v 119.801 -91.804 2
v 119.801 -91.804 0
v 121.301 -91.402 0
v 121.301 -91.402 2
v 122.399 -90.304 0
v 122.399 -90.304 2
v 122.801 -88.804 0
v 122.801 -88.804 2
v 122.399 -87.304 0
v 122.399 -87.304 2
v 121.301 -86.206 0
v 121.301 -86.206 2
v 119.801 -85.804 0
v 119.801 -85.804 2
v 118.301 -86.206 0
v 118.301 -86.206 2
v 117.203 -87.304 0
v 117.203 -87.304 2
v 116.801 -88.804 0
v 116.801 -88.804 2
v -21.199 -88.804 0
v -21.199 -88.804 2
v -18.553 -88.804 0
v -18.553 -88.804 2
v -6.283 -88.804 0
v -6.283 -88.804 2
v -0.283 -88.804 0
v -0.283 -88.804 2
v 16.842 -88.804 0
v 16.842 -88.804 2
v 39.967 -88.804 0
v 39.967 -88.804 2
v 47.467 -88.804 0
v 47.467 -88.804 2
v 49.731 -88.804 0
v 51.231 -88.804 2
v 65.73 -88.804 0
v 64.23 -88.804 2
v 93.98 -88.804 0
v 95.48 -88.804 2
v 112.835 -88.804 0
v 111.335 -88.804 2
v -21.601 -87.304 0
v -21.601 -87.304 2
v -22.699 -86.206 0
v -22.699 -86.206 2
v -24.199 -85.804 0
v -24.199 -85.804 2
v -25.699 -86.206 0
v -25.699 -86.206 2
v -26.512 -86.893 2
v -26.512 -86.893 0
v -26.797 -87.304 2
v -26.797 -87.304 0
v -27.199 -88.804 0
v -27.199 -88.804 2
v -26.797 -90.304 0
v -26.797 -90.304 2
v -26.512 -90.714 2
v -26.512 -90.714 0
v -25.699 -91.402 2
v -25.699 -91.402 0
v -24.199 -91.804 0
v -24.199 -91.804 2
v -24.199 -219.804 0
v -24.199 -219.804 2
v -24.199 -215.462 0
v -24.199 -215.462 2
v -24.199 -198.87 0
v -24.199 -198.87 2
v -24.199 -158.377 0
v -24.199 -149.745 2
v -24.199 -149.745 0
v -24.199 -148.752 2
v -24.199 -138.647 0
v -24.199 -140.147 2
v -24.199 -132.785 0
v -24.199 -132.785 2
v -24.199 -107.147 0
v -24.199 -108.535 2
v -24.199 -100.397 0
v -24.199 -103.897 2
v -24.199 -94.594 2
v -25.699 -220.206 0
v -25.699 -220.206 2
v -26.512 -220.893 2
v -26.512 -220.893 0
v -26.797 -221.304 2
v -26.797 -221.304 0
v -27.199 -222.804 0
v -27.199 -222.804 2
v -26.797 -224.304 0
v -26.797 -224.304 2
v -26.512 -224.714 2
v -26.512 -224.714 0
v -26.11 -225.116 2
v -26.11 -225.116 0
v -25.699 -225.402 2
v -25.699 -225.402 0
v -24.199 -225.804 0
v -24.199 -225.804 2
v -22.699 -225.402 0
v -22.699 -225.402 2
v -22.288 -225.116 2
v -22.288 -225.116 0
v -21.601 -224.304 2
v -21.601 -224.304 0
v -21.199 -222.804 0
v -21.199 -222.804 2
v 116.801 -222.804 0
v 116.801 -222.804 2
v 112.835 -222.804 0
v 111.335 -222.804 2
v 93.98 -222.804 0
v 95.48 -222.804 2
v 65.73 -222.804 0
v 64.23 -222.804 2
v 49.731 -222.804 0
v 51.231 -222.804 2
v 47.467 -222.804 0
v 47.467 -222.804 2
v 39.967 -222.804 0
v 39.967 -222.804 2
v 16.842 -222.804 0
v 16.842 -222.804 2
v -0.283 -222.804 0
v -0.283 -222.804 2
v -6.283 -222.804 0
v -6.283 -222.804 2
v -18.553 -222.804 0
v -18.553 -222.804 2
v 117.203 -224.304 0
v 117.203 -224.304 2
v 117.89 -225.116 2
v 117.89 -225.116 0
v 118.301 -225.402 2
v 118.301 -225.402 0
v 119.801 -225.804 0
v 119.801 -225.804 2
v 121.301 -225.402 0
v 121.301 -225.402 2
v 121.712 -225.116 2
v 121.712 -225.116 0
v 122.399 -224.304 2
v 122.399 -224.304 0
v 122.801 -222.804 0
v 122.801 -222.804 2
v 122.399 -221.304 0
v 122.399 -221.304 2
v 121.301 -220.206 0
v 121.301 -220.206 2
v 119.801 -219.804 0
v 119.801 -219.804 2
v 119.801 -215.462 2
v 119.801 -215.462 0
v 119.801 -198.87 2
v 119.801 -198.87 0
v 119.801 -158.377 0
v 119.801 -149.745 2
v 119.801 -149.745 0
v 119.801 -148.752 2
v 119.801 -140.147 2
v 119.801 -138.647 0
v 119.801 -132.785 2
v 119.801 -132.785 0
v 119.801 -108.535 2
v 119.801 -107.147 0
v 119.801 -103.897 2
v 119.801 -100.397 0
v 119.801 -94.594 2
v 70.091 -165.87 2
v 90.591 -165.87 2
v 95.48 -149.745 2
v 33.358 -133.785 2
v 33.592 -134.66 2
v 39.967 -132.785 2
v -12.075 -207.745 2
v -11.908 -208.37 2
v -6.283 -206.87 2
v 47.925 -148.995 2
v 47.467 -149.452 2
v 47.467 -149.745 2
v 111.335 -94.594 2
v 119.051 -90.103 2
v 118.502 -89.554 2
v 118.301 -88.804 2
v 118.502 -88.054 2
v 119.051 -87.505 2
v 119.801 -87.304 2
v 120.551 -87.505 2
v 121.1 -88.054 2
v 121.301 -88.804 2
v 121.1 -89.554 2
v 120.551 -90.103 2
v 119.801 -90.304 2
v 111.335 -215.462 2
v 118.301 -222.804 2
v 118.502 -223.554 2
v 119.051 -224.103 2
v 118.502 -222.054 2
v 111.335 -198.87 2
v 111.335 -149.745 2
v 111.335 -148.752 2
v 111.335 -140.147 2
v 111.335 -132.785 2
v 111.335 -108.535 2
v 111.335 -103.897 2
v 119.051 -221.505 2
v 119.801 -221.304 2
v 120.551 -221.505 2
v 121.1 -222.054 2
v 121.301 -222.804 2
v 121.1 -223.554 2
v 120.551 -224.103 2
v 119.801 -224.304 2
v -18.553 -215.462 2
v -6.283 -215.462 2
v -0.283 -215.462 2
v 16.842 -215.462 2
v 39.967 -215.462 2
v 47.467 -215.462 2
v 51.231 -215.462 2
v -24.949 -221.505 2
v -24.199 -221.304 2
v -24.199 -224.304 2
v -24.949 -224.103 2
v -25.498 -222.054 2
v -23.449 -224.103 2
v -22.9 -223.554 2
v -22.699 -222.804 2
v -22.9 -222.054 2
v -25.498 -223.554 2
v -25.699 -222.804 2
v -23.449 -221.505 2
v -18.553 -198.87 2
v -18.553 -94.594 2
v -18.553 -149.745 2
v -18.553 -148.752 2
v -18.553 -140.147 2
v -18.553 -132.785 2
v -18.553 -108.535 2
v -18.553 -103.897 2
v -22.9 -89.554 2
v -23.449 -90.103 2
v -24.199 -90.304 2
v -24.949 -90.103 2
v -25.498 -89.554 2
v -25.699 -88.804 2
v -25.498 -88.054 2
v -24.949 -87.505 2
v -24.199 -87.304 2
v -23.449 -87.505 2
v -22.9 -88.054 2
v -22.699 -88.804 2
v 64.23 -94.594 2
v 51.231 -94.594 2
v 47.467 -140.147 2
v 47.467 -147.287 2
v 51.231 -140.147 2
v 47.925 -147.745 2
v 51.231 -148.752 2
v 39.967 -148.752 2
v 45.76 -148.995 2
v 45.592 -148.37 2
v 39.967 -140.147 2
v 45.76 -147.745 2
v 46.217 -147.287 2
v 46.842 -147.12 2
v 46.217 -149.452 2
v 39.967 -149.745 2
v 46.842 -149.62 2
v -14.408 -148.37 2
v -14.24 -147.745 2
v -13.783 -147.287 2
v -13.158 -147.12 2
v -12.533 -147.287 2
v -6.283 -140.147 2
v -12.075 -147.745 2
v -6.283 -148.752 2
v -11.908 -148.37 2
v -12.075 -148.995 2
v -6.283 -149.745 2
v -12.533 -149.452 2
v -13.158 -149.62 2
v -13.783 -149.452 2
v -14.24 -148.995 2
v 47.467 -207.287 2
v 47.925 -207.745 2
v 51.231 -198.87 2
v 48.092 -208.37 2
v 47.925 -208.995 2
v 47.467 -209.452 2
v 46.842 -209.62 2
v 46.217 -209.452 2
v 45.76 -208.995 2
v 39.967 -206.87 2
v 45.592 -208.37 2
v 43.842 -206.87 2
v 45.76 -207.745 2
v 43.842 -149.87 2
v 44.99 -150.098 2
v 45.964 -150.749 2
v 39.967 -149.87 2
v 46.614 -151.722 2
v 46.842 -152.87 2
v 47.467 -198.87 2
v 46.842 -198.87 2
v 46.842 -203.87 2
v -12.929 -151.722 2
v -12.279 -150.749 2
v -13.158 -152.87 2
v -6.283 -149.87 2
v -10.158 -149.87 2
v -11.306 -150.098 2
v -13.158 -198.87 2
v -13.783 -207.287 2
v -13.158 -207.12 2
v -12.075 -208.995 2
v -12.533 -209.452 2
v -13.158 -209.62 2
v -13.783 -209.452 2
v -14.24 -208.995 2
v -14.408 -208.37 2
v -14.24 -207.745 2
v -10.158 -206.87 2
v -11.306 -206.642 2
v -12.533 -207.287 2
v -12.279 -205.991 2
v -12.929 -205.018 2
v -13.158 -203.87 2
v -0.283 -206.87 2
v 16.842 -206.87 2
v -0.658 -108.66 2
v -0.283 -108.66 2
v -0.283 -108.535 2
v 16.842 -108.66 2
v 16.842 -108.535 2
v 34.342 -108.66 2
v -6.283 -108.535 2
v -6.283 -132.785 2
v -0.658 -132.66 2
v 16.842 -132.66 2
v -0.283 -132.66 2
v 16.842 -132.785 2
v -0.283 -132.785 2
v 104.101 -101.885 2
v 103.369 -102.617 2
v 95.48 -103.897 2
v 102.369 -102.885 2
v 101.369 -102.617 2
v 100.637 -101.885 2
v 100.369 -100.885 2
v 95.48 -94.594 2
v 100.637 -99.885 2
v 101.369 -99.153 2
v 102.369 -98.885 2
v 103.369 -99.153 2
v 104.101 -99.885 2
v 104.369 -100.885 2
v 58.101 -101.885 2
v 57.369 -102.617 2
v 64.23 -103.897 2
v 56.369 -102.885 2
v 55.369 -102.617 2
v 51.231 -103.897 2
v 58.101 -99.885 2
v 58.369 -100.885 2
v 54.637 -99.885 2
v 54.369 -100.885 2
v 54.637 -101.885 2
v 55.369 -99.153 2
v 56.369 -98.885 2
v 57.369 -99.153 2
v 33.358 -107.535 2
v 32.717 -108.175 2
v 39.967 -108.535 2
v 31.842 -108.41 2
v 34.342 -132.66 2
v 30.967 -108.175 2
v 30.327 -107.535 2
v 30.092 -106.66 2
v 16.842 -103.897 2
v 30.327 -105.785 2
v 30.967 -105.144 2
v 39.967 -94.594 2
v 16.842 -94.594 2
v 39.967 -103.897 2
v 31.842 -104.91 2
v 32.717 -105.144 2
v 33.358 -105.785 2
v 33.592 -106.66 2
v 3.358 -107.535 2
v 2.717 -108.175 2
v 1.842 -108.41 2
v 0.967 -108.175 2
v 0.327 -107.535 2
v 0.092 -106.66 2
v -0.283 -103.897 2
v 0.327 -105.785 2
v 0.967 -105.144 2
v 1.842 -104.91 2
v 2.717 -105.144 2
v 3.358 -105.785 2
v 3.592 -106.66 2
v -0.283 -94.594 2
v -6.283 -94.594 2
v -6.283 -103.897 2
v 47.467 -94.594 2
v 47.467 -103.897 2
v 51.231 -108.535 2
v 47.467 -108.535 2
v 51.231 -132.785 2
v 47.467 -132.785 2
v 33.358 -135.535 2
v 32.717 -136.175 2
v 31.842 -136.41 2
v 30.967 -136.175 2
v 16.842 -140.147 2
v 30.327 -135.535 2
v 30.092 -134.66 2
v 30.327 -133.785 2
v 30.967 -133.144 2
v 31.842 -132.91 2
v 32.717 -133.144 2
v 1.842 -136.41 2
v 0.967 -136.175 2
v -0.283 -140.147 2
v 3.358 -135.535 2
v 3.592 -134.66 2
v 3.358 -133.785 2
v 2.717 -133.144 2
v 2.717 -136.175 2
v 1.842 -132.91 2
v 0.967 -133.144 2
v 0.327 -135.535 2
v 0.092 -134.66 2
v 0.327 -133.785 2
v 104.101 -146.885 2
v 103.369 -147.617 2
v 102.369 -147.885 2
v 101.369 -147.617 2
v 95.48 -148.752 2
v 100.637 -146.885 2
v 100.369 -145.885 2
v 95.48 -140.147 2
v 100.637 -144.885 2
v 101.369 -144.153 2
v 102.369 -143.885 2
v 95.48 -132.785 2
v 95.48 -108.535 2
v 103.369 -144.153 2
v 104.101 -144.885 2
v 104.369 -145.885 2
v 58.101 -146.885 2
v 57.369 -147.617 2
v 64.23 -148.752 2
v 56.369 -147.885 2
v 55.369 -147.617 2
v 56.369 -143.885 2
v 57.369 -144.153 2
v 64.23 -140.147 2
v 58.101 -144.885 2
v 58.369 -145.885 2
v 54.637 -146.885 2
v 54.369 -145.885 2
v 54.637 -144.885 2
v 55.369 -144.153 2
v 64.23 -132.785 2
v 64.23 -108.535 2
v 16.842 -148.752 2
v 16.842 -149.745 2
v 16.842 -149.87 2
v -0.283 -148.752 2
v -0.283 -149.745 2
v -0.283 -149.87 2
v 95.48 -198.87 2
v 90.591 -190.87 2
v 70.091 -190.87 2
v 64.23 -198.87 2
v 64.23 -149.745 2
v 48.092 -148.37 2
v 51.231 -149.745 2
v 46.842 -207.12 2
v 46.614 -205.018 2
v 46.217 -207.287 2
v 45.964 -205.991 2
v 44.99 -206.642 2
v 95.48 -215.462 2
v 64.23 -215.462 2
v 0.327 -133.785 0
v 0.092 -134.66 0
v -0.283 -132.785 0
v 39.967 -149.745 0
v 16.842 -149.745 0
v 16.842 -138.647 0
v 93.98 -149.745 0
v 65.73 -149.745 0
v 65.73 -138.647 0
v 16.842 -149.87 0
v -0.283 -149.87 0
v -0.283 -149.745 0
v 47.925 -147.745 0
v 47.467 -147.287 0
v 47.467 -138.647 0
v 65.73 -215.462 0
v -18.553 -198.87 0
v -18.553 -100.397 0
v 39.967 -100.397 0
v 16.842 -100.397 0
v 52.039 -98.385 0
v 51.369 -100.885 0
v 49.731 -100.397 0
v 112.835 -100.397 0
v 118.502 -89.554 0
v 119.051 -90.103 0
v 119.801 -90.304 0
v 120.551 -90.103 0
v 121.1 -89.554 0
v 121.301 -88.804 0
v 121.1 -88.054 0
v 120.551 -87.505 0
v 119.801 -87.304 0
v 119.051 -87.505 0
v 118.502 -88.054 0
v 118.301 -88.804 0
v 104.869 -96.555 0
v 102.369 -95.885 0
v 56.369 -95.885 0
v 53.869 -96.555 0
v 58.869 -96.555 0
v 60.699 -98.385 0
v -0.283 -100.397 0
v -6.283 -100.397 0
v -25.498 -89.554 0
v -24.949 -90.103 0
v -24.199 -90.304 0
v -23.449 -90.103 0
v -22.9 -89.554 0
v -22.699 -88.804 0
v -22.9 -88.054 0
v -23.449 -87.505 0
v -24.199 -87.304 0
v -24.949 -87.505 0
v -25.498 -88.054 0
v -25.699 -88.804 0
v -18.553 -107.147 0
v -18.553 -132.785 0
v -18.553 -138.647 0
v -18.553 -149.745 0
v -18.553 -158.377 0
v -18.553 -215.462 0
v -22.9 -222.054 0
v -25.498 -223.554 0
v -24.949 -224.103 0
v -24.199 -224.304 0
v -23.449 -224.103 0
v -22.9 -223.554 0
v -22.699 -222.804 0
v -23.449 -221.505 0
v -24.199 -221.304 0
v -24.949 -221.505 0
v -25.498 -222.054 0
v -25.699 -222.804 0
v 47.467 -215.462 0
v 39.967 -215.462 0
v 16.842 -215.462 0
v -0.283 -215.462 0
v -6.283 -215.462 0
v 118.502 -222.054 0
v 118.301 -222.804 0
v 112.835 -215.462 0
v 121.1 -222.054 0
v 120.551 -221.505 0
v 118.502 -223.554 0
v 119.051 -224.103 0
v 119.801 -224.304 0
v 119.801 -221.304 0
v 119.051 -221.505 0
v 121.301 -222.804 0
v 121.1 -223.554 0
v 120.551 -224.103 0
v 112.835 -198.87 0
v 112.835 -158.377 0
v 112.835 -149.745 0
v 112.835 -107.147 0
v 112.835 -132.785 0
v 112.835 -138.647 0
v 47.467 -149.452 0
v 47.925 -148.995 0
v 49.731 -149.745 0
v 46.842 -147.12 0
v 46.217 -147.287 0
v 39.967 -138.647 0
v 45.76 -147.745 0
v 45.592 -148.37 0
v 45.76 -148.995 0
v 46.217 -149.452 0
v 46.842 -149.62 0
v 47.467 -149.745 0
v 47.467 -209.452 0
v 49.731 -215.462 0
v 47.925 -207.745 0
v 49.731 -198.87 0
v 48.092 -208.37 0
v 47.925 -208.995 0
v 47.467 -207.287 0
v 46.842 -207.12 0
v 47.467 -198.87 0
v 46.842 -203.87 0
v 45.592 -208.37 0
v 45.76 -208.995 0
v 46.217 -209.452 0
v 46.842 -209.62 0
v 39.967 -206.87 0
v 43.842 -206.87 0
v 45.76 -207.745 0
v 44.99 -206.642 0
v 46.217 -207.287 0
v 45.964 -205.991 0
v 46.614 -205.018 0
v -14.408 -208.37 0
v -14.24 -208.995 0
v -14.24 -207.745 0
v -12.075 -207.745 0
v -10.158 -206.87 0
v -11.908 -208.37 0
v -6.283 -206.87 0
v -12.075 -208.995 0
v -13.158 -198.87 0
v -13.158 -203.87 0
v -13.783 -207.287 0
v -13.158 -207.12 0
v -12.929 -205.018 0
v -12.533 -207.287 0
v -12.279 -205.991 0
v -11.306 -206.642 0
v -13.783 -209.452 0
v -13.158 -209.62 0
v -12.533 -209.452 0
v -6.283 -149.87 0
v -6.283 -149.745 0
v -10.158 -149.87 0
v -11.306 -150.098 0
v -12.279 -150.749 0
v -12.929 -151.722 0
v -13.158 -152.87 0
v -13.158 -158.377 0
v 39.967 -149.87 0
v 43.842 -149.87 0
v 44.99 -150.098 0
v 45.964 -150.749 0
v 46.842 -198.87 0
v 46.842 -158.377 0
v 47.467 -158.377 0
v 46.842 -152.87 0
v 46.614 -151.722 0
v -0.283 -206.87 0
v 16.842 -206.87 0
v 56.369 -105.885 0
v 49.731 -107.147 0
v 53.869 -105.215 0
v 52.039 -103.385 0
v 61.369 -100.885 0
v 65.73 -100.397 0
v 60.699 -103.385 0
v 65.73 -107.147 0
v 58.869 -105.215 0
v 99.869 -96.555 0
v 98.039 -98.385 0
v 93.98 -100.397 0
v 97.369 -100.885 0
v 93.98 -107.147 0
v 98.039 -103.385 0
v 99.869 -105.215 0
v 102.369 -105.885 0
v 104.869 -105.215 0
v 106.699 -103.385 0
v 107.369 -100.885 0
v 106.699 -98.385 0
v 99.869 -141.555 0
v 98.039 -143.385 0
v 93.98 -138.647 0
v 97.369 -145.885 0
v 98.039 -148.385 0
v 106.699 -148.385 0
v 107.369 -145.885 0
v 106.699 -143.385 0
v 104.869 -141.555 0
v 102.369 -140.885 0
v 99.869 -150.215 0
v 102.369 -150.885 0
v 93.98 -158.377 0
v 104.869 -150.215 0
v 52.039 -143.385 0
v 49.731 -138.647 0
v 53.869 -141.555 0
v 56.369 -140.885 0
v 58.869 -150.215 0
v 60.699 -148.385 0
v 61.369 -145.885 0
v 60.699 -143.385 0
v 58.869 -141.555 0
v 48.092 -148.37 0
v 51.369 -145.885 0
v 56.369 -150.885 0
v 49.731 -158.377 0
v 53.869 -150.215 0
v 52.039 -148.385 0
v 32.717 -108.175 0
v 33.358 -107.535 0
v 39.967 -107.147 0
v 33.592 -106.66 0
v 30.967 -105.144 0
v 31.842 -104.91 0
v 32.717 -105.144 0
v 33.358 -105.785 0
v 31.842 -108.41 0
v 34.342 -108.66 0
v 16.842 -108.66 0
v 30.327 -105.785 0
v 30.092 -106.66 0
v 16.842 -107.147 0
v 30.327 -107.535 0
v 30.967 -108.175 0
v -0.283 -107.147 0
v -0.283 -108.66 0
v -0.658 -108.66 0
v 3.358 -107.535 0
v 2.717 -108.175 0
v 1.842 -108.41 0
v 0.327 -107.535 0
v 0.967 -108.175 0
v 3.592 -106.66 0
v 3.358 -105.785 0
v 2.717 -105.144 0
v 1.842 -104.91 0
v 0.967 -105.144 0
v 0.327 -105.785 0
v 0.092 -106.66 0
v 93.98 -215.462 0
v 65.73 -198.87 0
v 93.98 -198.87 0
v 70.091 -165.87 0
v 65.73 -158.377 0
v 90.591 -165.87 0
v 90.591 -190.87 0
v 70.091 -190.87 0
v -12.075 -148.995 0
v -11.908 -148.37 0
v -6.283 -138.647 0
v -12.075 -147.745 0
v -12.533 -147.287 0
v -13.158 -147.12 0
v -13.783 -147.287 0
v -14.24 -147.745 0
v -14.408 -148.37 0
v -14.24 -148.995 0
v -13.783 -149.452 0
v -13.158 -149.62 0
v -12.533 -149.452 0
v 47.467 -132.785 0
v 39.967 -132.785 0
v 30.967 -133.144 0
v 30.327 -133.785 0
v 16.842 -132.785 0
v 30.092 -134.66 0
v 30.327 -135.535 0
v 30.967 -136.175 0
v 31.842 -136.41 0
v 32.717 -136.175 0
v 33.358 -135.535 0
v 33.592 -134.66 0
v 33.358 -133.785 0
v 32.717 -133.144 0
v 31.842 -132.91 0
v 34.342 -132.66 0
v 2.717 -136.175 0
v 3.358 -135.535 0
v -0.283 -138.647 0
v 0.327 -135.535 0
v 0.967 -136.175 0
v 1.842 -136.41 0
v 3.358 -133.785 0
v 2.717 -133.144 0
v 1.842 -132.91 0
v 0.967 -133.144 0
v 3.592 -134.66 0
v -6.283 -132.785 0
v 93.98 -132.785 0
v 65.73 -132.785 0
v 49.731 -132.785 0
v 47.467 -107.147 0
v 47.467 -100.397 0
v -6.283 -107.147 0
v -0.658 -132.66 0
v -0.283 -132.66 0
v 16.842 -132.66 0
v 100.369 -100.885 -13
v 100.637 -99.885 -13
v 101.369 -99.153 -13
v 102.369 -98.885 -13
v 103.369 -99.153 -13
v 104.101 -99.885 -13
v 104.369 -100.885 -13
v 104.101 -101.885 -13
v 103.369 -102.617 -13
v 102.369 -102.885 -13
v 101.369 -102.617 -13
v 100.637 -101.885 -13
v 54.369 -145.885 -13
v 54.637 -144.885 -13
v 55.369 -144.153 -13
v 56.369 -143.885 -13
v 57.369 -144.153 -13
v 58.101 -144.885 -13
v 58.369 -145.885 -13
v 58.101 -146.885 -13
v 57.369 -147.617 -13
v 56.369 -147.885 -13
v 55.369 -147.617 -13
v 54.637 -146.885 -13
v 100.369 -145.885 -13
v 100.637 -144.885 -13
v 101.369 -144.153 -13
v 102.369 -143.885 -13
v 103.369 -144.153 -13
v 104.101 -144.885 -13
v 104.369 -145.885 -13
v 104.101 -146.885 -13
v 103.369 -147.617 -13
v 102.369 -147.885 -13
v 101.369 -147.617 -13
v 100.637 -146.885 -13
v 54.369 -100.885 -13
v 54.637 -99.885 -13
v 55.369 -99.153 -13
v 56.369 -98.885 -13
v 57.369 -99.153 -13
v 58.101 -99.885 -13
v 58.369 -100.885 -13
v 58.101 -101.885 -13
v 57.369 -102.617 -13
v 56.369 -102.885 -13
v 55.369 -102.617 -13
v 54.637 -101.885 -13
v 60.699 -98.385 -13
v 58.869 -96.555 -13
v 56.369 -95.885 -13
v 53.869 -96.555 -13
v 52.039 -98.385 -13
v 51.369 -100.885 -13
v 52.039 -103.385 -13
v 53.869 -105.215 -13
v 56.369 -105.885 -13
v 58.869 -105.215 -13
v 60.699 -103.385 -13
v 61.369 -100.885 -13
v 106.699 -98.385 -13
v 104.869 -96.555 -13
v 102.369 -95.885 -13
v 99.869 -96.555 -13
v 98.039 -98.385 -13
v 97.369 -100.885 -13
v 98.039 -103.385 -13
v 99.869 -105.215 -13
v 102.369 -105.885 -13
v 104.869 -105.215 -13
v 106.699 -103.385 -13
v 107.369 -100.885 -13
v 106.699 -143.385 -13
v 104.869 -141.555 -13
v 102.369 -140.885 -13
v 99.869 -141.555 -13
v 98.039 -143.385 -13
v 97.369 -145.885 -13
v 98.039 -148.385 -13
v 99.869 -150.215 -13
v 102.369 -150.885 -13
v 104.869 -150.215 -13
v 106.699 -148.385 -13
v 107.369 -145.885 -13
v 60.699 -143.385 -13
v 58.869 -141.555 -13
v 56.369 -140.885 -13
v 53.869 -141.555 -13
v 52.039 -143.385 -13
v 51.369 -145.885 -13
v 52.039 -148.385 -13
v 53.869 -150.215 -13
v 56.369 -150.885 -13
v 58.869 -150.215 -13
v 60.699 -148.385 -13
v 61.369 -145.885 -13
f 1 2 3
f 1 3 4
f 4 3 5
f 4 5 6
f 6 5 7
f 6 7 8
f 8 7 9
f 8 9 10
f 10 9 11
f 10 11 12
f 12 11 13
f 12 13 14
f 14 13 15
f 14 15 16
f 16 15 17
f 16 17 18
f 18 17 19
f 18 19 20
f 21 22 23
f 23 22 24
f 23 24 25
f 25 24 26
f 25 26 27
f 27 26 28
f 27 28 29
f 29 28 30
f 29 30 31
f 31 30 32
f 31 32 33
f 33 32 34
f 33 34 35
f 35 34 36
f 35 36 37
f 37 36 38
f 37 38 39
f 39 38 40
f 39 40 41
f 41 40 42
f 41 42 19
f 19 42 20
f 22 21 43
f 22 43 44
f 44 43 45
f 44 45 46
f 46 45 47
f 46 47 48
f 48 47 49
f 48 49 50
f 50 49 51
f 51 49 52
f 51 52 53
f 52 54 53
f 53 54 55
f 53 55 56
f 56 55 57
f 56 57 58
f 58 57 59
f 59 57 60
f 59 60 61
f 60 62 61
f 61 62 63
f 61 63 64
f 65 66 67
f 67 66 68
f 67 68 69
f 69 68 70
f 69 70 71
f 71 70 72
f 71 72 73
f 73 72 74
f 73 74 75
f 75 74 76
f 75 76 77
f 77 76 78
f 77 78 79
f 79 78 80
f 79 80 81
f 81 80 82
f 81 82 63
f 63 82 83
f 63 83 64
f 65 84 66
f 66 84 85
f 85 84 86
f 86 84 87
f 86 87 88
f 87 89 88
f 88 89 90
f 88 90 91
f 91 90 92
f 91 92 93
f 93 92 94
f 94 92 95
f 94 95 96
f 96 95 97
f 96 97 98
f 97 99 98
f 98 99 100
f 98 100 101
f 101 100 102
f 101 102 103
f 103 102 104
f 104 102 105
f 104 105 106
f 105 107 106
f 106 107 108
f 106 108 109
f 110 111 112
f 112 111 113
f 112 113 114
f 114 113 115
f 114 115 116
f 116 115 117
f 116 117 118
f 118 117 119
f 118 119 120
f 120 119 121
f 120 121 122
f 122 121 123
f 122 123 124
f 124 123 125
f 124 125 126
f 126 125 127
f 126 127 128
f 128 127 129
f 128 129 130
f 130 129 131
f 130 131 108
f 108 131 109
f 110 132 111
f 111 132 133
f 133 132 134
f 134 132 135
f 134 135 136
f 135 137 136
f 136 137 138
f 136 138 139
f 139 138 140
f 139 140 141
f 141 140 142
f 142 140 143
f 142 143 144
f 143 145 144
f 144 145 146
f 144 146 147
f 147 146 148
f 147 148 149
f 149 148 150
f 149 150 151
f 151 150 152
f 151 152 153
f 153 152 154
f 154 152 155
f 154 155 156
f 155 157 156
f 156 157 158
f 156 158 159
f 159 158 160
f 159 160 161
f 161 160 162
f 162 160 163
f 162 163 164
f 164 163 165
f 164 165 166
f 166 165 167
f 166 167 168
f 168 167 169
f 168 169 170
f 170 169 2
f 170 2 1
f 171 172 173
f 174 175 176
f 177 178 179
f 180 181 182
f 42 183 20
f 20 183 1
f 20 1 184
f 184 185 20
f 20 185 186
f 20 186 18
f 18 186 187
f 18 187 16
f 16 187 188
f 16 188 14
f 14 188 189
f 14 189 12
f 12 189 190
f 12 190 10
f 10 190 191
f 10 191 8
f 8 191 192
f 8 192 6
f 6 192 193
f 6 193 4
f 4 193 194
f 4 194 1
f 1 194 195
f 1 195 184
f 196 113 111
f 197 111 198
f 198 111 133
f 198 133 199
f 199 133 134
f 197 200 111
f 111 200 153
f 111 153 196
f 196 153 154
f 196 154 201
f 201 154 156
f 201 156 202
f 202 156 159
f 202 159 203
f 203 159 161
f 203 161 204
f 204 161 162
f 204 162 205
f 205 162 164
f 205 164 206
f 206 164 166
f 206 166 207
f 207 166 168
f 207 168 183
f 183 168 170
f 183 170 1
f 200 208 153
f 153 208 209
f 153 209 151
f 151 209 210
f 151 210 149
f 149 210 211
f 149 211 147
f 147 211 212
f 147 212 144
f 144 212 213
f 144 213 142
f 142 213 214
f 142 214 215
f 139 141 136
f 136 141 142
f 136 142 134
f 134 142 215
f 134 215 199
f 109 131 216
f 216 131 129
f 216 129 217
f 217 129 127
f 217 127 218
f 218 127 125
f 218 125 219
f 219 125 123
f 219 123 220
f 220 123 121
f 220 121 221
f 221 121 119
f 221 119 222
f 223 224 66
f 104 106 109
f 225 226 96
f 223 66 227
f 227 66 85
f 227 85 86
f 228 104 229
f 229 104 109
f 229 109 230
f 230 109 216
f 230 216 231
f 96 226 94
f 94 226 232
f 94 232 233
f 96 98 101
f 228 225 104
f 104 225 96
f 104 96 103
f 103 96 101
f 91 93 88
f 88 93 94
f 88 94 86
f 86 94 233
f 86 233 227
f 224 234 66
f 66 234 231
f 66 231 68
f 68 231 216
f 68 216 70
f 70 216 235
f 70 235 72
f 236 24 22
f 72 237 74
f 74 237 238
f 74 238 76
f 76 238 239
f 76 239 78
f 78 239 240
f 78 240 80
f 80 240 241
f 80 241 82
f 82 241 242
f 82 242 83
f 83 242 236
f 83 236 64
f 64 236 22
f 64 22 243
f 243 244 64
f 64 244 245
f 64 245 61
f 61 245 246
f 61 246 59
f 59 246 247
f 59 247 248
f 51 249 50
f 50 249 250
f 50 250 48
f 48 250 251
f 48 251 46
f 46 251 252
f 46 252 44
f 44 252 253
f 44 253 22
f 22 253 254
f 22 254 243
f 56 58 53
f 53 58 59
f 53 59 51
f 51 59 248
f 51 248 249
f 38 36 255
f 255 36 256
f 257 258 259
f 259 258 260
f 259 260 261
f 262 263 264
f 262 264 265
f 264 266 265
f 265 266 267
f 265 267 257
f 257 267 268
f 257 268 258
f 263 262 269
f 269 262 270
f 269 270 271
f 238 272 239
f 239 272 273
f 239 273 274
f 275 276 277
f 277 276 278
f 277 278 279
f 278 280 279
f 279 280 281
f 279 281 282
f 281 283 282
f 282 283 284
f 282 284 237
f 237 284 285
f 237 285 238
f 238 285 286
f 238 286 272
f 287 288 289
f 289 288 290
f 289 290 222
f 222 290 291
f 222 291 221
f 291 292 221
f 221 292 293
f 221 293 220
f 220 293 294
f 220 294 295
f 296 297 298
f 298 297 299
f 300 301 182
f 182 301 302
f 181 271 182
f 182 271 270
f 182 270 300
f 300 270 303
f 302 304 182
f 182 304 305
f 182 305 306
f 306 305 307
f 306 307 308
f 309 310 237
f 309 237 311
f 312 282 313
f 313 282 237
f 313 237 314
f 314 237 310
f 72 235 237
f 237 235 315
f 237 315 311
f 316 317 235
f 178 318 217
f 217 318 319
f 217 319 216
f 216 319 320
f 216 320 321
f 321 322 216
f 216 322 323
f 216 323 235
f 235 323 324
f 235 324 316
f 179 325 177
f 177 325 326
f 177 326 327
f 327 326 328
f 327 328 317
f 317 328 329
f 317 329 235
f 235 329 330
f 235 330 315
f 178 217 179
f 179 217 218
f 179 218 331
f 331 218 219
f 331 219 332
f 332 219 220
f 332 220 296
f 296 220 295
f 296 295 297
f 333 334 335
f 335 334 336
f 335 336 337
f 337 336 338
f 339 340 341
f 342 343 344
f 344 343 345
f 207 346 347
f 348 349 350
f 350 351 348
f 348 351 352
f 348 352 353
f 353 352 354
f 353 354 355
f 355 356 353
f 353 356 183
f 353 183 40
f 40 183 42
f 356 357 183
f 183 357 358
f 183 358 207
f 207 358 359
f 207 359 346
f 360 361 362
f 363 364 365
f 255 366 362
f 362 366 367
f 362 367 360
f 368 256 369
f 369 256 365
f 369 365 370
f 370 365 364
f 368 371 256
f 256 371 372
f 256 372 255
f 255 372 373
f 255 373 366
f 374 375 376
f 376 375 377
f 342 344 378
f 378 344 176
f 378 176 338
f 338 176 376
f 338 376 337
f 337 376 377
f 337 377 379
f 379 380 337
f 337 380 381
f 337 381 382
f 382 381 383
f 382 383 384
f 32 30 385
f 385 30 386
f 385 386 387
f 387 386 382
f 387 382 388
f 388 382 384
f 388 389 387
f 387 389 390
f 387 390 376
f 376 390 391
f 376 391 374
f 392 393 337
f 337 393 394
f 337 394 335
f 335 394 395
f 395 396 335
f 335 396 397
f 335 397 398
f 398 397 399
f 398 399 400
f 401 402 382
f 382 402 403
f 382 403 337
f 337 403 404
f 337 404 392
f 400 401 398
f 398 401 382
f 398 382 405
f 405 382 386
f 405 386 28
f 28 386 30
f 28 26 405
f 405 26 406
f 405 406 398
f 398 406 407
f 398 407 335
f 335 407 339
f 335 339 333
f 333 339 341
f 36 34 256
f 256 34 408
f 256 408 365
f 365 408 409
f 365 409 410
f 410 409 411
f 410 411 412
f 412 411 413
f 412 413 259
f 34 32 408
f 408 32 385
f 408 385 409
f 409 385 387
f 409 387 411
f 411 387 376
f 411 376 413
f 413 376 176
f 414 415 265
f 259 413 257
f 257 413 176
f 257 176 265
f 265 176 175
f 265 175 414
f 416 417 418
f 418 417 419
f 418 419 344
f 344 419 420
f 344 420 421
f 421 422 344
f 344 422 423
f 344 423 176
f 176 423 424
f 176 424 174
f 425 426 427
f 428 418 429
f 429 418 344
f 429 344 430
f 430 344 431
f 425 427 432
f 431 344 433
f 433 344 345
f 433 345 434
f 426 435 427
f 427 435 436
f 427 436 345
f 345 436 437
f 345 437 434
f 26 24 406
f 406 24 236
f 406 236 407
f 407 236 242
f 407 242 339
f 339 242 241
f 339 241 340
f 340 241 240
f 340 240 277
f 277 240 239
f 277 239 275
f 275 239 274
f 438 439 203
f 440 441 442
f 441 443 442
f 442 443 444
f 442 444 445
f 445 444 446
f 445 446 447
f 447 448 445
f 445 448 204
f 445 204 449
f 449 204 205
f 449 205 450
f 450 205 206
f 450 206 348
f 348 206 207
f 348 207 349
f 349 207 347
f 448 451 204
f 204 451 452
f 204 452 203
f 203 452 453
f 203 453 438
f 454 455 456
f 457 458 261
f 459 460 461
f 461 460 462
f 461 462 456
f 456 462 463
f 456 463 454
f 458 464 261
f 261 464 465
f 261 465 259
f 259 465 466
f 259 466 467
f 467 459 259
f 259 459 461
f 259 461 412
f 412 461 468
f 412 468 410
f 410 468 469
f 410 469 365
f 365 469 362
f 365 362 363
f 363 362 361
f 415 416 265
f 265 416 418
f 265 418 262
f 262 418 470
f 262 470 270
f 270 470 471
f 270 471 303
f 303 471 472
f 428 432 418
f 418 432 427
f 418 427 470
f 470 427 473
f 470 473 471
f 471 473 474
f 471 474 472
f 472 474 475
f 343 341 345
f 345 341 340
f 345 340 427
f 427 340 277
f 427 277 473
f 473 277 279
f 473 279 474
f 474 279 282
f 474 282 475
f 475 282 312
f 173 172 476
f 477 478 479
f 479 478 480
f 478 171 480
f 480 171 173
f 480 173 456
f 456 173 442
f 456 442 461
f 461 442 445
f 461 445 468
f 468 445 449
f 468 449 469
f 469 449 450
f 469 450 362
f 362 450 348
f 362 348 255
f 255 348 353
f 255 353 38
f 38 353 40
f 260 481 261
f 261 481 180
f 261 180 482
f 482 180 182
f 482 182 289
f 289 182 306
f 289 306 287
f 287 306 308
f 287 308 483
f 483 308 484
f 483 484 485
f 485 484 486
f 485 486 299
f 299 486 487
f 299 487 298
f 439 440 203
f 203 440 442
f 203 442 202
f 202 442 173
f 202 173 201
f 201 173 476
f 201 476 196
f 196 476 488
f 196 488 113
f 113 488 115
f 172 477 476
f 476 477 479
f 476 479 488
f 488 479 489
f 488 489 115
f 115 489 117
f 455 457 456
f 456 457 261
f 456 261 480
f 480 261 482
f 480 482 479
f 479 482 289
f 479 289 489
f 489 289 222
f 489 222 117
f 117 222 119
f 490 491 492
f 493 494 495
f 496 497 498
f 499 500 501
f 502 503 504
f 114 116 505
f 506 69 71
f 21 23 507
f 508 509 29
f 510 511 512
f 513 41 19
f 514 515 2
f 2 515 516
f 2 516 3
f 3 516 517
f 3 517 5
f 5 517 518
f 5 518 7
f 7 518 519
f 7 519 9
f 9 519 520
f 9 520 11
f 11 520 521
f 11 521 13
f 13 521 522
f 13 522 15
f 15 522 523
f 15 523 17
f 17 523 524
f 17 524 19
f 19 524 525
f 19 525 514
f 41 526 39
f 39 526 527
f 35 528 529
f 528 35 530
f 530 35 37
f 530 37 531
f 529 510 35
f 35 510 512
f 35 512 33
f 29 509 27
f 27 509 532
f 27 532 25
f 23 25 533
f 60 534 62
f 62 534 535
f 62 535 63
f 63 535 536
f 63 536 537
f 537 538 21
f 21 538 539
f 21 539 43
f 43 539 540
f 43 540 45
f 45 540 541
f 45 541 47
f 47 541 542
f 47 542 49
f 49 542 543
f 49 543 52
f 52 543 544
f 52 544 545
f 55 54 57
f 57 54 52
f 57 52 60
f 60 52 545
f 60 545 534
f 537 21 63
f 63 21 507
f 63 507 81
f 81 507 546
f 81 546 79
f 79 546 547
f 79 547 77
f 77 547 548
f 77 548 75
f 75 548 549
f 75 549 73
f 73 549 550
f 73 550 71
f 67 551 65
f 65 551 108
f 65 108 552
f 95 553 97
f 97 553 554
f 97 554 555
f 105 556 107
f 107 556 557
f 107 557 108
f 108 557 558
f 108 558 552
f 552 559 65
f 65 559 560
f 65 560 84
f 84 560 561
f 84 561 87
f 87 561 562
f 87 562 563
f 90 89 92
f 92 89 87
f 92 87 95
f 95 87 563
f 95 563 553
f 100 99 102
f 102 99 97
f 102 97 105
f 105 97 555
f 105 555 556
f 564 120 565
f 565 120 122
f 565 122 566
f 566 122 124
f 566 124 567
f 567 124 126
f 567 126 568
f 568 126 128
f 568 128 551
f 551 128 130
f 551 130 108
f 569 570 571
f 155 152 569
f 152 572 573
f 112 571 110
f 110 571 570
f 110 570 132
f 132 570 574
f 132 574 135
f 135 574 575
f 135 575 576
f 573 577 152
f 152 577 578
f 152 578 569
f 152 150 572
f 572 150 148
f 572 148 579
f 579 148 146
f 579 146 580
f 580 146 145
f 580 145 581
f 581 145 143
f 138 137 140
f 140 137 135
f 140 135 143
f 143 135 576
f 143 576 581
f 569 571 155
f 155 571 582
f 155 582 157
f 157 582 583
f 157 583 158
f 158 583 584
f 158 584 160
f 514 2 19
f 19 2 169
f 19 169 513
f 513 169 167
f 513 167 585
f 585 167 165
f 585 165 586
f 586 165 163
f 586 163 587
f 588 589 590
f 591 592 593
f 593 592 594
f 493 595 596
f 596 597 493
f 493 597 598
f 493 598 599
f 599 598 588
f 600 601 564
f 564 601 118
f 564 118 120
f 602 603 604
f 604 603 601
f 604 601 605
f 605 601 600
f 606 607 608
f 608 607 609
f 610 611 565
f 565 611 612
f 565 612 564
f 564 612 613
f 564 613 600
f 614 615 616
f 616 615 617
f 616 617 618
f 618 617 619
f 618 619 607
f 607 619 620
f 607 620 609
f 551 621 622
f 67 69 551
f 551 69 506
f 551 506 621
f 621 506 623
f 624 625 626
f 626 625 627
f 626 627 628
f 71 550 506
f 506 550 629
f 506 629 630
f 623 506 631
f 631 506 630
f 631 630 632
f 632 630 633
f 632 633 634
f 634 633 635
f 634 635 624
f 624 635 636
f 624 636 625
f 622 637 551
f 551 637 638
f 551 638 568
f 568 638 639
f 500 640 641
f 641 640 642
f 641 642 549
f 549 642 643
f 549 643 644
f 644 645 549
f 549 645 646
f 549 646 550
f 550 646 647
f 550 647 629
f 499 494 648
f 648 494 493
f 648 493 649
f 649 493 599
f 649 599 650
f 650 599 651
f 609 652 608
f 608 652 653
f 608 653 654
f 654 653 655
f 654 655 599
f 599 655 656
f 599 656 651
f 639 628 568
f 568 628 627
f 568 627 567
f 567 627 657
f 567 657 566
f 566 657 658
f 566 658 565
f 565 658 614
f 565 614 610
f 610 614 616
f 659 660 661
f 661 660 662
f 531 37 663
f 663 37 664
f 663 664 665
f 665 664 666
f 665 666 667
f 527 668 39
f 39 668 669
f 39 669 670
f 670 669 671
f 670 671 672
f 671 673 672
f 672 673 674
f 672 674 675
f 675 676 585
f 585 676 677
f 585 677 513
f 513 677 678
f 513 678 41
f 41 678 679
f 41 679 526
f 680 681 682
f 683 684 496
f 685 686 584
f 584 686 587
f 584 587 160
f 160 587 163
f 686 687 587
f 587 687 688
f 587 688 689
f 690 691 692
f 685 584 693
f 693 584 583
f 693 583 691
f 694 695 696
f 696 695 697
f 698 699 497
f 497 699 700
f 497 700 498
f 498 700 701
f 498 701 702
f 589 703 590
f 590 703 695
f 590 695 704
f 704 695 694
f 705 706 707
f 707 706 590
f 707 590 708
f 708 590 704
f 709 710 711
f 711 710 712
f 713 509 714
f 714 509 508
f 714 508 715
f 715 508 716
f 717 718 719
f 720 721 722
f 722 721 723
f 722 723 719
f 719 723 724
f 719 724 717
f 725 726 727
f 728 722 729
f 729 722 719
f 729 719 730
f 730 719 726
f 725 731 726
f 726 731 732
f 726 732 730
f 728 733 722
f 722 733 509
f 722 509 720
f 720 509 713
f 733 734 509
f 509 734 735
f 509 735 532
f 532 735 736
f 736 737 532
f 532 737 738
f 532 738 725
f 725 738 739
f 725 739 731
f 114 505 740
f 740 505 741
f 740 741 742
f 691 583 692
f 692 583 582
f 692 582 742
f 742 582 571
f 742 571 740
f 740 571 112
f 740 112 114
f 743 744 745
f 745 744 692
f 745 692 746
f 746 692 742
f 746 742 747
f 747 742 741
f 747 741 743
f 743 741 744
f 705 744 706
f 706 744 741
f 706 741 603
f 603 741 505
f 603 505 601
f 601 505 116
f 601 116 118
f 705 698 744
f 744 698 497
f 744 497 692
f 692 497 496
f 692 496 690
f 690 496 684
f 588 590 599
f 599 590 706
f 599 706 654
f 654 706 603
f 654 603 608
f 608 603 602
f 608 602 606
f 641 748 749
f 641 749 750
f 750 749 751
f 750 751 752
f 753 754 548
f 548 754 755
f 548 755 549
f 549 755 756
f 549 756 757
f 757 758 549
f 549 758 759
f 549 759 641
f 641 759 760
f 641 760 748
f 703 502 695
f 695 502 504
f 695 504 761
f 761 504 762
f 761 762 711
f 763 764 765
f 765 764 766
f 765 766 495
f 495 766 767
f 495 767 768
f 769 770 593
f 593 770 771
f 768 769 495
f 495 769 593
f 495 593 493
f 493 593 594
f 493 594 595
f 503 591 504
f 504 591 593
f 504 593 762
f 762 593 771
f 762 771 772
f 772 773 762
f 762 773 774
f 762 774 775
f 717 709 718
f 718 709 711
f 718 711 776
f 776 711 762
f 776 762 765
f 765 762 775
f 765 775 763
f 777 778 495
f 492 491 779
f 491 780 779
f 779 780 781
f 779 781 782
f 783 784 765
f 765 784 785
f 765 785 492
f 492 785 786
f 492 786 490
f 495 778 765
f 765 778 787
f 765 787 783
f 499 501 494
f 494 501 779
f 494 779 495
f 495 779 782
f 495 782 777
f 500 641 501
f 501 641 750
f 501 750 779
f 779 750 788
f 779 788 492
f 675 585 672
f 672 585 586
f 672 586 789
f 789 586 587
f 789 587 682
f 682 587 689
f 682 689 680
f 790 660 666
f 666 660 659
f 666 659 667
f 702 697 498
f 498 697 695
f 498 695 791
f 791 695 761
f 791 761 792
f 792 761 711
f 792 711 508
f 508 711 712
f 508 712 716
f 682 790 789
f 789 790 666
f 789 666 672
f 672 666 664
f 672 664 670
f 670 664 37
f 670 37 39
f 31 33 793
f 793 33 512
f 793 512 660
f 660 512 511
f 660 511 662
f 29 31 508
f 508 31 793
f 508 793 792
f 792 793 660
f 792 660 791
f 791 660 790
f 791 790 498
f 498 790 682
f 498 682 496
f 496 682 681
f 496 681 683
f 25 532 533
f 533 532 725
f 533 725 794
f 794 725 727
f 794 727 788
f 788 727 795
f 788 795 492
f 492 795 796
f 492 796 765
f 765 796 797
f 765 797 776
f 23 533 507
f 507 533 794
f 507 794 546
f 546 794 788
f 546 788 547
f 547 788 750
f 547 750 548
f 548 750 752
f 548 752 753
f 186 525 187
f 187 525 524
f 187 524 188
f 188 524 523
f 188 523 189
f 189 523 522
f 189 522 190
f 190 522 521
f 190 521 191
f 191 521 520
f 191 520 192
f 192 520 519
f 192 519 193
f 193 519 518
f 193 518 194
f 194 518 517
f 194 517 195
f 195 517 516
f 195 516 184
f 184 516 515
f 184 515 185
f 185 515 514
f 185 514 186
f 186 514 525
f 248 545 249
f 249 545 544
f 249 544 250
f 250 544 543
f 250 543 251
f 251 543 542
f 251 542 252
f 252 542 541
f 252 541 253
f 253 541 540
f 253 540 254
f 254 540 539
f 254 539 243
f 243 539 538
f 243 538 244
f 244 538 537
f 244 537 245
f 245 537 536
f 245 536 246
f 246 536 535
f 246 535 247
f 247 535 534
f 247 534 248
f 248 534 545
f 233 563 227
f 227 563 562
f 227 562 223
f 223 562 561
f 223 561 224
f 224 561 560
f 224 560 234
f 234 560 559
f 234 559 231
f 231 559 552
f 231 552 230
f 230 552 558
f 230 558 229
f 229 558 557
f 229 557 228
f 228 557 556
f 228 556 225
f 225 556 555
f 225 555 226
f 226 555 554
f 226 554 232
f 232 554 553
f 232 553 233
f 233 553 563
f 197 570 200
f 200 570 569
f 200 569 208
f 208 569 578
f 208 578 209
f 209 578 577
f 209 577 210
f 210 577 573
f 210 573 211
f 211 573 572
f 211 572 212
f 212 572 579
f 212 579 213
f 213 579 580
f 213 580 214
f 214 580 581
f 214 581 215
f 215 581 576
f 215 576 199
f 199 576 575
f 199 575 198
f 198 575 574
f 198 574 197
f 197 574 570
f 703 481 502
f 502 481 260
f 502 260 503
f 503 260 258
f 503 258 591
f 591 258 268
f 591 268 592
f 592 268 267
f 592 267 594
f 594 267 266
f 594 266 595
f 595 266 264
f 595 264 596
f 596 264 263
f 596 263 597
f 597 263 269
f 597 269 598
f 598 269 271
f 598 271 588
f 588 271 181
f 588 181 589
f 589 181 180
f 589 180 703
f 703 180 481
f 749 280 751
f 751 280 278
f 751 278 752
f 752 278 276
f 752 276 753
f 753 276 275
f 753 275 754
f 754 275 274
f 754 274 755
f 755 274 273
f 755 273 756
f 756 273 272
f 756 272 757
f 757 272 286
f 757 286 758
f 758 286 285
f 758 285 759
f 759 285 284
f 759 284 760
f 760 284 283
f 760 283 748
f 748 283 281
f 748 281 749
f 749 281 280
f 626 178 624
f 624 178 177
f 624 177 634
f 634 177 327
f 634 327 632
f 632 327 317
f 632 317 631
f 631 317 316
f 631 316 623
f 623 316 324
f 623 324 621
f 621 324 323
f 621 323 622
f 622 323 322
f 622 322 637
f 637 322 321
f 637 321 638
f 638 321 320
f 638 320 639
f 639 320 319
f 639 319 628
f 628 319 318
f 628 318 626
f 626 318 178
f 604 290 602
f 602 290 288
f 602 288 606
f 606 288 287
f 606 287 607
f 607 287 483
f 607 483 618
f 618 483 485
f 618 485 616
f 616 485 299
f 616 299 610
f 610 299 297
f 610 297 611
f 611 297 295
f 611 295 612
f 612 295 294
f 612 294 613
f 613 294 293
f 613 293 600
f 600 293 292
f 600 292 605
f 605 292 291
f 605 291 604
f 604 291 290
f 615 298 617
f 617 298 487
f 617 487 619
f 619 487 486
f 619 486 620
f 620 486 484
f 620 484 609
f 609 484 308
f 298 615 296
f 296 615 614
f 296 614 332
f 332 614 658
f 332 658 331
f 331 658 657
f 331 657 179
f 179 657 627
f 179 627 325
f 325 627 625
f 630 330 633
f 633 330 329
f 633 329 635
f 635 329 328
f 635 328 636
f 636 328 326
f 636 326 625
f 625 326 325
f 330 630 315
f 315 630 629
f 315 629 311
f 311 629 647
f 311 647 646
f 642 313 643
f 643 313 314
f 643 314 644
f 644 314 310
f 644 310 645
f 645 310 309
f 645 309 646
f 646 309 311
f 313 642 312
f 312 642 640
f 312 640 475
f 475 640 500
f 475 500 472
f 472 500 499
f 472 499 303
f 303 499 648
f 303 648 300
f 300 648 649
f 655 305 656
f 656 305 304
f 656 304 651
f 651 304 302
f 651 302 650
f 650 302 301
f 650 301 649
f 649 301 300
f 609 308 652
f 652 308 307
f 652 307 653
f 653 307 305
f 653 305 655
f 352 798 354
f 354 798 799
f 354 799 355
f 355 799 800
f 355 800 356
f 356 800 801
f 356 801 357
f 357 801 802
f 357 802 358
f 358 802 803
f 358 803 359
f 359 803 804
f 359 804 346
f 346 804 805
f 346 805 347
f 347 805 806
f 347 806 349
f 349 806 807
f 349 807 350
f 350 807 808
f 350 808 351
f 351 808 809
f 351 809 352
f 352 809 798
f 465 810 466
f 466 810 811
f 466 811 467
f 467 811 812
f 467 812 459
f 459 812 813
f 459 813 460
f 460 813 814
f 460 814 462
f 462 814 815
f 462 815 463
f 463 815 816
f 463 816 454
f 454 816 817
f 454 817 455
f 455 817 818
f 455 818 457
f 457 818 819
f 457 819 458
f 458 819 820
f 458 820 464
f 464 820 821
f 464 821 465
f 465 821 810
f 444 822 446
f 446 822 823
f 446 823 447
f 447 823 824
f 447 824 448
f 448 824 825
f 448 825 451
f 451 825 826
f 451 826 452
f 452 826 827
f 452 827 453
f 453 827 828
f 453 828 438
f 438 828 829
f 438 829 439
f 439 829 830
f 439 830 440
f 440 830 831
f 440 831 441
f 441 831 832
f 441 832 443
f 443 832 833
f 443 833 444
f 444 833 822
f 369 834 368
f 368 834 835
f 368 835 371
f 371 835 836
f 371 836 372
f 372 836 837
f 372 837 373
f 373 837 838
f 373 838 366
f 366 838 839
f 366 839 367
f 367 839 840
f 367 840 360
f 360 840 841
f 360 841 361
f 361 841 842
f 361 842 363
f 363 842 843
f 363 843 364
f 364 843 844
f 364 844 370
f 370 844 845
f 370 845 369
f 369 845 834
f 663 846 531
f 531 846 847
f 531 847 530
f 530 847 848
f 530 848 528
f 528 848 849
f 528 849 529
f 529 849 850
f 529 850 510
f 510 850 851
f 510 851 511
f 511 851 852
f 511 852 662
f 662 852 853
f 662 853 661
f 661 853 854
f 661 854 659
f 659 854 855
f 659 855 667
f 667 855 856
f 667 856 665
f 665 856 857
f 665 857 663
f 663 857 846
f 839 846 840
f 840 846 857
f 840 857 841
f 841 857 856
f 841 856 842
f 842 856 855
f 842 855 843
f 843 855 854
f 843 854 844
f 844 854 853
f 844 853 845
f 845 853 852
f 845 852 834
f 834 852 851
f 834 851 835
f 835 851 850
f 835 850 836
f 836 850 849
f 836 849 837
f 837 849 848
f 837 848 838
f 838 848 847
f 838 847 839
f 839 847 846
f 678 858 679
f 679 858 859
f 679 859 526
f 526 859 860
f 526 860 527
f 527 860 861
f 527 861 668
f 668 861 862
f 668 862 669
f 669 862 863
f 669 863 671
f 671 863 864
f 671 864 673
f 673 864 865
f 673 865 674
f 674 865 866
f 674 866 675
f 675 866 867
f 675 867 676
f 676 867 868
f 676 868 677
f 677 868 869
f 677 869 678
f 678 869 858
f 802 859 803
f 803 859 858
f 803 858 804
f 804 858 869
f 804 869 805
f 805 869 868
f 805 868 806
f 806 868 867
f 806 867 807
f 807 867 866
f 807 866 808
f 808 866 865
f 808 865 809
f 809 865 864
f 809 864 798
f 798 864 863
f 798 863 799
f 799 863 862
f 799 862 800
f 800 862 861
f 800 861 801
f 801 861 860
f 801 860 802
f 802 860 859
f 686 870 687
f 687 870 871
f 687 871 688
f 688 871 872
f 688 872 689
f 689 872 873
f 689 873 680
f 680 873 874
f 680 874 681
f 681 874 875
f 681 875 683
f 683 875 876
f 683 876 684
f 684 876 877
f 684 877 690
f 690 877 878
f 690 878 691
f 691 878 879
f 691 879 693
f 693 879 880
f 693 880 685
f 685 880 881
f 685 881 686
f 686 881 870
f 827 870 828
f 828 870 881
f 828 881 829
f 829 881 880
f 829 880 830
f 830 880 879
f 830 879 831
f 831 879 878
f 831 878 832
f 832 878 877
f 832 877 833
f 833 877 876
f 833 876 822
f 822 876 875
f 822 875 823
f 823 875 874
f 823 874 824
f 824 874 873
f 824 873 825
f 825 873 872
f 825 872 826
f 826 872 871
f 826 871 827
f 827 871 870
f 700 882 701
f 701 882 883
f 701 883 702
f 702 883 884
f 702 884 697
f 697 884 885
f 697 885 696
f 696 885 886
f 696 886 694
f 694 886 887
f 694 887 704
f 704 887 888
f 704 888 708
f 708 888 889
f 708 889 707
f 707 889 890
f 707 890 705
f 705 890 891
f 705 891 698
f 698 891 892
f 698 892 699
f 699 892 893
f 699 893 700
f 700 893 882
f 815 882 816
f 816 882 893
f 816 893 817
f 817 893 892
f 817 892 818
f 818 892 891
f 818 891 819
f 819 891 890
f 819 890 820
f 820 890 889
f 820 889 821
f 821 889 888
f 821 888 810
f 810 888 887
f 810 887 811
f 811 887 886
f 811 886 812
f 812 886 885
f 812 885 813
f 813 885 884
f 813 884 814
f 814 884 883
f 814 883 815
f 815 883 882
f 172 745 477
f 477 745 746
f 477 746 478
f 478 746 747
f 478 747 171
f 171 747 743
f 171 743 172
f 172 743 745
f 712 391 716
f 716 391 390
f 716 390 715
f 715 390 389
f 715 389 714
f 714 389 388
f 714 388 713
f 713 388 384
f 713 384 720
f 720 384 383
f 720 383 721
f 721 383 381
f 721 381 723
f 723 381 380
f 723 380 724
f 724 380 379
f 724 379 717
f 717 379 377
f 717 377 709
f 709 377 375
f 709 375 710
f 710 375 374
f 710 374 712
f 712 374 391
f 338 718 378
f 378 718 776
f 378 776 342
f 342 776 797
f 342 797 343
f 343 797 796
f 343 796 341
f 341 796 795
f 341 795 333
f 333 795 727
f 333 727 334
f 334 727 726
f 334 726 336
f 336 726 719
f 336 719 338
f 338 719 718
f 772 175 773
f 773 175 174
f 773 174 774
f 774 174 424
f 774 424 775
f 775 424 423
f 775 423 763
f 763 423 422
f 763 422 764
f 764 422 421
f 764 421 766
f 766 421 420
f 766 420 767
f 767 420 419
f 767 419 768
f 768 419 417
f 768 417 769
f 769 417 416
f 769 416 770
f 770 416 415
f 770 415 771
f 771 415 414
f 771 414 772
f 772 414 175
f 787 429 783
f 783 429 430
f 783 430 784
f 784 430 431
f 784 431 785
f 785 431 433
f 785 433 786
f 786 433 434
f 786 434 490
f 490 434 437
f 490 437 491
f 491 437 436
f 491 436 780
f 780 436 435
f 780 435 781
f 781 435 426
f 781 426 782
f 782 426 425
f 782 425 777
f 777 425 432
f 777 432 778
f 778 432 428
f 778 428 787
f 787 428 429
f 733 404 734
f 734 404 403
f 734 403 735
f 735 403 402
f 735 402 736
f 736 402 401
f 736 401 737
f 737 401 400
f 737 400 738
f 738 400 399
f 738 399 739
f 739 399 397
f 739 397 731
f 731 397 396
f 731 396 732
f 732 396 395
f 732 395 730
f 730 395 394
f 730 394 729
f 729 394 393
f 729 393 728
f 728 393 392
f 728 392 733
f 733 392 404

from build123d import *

# Parameters (mm, degrees)
BOSS_EXTRUDE1_DEPTH = 2
SKETCH2_R           = 1.5
CUT_EXTRUDE1_DEPTH  = 10
SKETCH3_R           = 1.25
SKETCH3_R_2         = 0.958506699
CUT_EXTRUDE2_DEPTH  = 10
CUT_EXTRUDE3_DEPTH  = 10
SKETCH5_R           = 0.958506699
CUT_EXTRUDE4_DEPTH  = 10
SKETCH8_R           = 2
CUT_EXTRUDE7_DEPTH  = 10
SKETCH9_R           = 5
SKETCH9_R_2         = 2
BOSS_EXTRUDE2_DEPTH = 15
SKETCH11_W          = 20.5
SKETCH11_H          = 25
CUT_EXTRUDE8_DEPTH  = 15
SKETCH12_R          = 1.75
SKETCH12_W          = 35
SKETCH12_H          = 24
CUT_EXTRUDE9_DEPTH  = 15


with BuildPart() as part:
    # Sketch1 → Boss-Extrude1 (new body)
    with BuildSketch(Plane.XY):
        with BuildLine():
            Line((119.800894358, -219.803615077), (119.800894358, -91.803615077))
            ThreePointArc((119.800894358, -91.803615077), (121.922214702, -86.682294733), (116.800894358, -88.803615077))
            Line((116.800894358, -88.803615077), (-21.199105642, -88.803615077))
            ThreePointArc((-21.199105642, -88.803615077), (-26.320425985, -86.682294733), (-24.199105642, -91.803615077))
            Line((-24.199105642, -91.803615077), (-24.199105642, -219.803615077))
            ThreePointArc((-24.199105642, -219.803615077), (-26.320425985, -224.92493542), (-21.199105642, -222.803615077))
            Line((-21.199105642, -222.803615077), (116.800894358, -222.803615077))
            ThreePointArc((116.800894358, -222.803615077), (121.922214702, -224.92493542), (119.800894358, -219.803615077))
        make_face()
    extrude(amount=BOSS_EXTRUDE1_DEPTH)

    # Sketch2 → Cut-Extrude1 (cut)
    with BuildSketch(Plane(origin=(0, 0, 0), x_dir=(-1, 0, 0), z_dir=(0, 0, -1))):
        with Locations((-119.800894358, -88.803615077)):
            Circle(SKETCH2_R)
        with Locations((24.199105642, -88.803615077)):
            Circle(SKETCH2_R)
        with Locations((24.199105642, -222.803615077)):
            Circle(SKETCH2_R)
        with Locations((-119.800894358, -222.803615077)):
            Circle(SKETCH2_R)
    extrude(amount=-CUT_EXTRUDE1_DEPTH, mode=Mode.SUBTRACT)

    # Sketch3 → Cut-Extrude2 (cut)
    with BuildSketch(Plane.XY.offset(2)):
        with Locations((-13.15761234, -148.369936061)):
            Circle(SKETCH3_R)
        with Locations((46.84238766, -148.369936061)):
            Circle(SKETCH3_R)
        with Locations((-13.15761234, -208.369936061)):
            Circle(SKETCH3_R)
        with Locations((46.84238766, -208.369936061)):
            Circle(SKETCH3_R)
        with Locations((46.84238766, -208.369936061)):
            Circle(SKETCH3_R_2, mode=Mode.SUBTRACT)
    extrude(amount=-CUT_EXTRUDE2_DEPTH, mode=Mode.SUBTRACT)

    # Sketch4 → Cut-Extrude3 (cut)
    with BuildSketch(Plane.XY.offset(2)):
        with BuildLine():
            Line((-10.15761234, -149.869936061), (43.84238766, -149.869936061))
            ThreePointArc((43.84238766, -149.869936061), (45.963708003, -150.748615717), (46.84238766, -152.869936061))
            Line((46.84238766, -152.869936061), (46.84238766, -203.869936061))
            ThreePointArc((46.84238766, -203.869936061), (45.963708003, -205.991256404), (43.84238766, -206.869936061))
            Line((43.84238766, -206.869936061), (-10.15761234, -206.869936061))
            ThreePointArc((-10.15761234, -206.869936061), (-12.278932684, -205.991256404), (-13.15761234, -203.869936061))
            Line((-13.15761234, -203.869936061), (-13.15761234, -152.869936061))
            ThreePointArc((-13.15761234, -152.869936061), (-12.278932684, -150.748615717), (-10.15761234, -149.869936061))
        make_face()
    extrude(amount=-CUT_EXTRUDE3_DEPTH, mode=Mode.SUBTRACT)

    # Sketch5 → Cut-Extrude4 (cut)
    with BuildSketch(Plane(origin=(0, 0, 0), x_dir=(-1, 0, 0), z_dir=(0, 0, -1))):
        with Locations((-46.84238766, -208.369936061)):
            Circle(SKETCH5_R)
    extrude(amount=-CUT_EXTRUDE4_DEPTH, mode=Mode.SUBTRACT)

    # Sketch8 → Cut-Extrude7 (cut)
    with BuildSketch(Plane(origin=(0, 0, 0), x_dir=(-1, 0, 0), z_dir=(0, 0, -1))):
        with Locations((-102.369057956, -100.884905857)):
            Circle(SKETCH8_R)
        with Locations((-56.369057956, -100.884905857)):
            Circle(SKETCH8_R)
        with Locations((-102.369057956, -145.884905857)):
            Circle(SKETCH8_R)
        with Locations((-56.369057956, -145.884905857)):
            Circle(SKETCH8_R)
    extrude(amount=-CUT_EXTRUDE7_DEPTH, mode=Mode.SUBTRACT)

    # Sketch9 → Boss-Extrude2 (add)
    with BuildSketch(Plane.XY.offset(2)):
        with Locations((56.369057956, -100.884905857)):
            Circle(SKETCH9_R)
        with Locations((56.369057956, -100.884905857)):
            Circle(SKETCH9_R_2, mode=Mode.SUBTRACT)
        with Locations((102.369057956, -100.884905857)):
            Circle(SKETCH9_R)
        with Locations((102.369057956, -100.884905857)):
            Circle(SKETCH9_R_2, mode=Mode.SUBTRACT)
        with Locations((102.369057956, -145.884905857)):
            Circle(SKETCH9_R)
        with Locations((102.369057956, -145.884905857)):
            Circle(SKETCH9_R_2, mode=Mode.SUBTRACT)
        with Locations((56.369057956, -145.884905857)):
            Circle(SKETCH9_R)
        with Locations((56.369057956, -145.884905857)):
            Circle(SKETCH9_R_2, mode=Mode.SUBTRACT)
    extrude(amount=-BOSS_EXTRUDE2_DEPTH)

    # Sketch11 → Cut-Extrude8 (cut)
    with BuildSketch(Plane.XY.offset(2)):
        with Locations((80.340901452, -178.369936061)):
            Rectangle(SKETCH11_W, SKETCH11_H)
    extrude(amount=-CUT_EXTRUDE8_DEPTH, mode=Mode.SUBTRACT)

    # Sketch12 → Cut-Extrude9 (cut)
    with BuildSketch(Plane.XY.offset(2)):
        with Locations((31.84238766, -106.65983664)):
            Circle(SKETCH12_R)
        with Locations((1.84238766, -106.65983664)):
            Circle(SKETCH12_R)
        with Locations((1.84238766, -134.65983664)):
            Circle(SKETCH12_R)
        with Locations((31.84238766, -134.65983664)):
            Circle(SKETCH12_R)
        with Locations((16.84238766, -120.65983664)):
            Rectangle(SKETCH12_W, SKETCH12_H)
    extrude(amount=-CUT_EXTRUDE9_DEPTH, mode=Mode.SUBTRACT)


solid = part.part
